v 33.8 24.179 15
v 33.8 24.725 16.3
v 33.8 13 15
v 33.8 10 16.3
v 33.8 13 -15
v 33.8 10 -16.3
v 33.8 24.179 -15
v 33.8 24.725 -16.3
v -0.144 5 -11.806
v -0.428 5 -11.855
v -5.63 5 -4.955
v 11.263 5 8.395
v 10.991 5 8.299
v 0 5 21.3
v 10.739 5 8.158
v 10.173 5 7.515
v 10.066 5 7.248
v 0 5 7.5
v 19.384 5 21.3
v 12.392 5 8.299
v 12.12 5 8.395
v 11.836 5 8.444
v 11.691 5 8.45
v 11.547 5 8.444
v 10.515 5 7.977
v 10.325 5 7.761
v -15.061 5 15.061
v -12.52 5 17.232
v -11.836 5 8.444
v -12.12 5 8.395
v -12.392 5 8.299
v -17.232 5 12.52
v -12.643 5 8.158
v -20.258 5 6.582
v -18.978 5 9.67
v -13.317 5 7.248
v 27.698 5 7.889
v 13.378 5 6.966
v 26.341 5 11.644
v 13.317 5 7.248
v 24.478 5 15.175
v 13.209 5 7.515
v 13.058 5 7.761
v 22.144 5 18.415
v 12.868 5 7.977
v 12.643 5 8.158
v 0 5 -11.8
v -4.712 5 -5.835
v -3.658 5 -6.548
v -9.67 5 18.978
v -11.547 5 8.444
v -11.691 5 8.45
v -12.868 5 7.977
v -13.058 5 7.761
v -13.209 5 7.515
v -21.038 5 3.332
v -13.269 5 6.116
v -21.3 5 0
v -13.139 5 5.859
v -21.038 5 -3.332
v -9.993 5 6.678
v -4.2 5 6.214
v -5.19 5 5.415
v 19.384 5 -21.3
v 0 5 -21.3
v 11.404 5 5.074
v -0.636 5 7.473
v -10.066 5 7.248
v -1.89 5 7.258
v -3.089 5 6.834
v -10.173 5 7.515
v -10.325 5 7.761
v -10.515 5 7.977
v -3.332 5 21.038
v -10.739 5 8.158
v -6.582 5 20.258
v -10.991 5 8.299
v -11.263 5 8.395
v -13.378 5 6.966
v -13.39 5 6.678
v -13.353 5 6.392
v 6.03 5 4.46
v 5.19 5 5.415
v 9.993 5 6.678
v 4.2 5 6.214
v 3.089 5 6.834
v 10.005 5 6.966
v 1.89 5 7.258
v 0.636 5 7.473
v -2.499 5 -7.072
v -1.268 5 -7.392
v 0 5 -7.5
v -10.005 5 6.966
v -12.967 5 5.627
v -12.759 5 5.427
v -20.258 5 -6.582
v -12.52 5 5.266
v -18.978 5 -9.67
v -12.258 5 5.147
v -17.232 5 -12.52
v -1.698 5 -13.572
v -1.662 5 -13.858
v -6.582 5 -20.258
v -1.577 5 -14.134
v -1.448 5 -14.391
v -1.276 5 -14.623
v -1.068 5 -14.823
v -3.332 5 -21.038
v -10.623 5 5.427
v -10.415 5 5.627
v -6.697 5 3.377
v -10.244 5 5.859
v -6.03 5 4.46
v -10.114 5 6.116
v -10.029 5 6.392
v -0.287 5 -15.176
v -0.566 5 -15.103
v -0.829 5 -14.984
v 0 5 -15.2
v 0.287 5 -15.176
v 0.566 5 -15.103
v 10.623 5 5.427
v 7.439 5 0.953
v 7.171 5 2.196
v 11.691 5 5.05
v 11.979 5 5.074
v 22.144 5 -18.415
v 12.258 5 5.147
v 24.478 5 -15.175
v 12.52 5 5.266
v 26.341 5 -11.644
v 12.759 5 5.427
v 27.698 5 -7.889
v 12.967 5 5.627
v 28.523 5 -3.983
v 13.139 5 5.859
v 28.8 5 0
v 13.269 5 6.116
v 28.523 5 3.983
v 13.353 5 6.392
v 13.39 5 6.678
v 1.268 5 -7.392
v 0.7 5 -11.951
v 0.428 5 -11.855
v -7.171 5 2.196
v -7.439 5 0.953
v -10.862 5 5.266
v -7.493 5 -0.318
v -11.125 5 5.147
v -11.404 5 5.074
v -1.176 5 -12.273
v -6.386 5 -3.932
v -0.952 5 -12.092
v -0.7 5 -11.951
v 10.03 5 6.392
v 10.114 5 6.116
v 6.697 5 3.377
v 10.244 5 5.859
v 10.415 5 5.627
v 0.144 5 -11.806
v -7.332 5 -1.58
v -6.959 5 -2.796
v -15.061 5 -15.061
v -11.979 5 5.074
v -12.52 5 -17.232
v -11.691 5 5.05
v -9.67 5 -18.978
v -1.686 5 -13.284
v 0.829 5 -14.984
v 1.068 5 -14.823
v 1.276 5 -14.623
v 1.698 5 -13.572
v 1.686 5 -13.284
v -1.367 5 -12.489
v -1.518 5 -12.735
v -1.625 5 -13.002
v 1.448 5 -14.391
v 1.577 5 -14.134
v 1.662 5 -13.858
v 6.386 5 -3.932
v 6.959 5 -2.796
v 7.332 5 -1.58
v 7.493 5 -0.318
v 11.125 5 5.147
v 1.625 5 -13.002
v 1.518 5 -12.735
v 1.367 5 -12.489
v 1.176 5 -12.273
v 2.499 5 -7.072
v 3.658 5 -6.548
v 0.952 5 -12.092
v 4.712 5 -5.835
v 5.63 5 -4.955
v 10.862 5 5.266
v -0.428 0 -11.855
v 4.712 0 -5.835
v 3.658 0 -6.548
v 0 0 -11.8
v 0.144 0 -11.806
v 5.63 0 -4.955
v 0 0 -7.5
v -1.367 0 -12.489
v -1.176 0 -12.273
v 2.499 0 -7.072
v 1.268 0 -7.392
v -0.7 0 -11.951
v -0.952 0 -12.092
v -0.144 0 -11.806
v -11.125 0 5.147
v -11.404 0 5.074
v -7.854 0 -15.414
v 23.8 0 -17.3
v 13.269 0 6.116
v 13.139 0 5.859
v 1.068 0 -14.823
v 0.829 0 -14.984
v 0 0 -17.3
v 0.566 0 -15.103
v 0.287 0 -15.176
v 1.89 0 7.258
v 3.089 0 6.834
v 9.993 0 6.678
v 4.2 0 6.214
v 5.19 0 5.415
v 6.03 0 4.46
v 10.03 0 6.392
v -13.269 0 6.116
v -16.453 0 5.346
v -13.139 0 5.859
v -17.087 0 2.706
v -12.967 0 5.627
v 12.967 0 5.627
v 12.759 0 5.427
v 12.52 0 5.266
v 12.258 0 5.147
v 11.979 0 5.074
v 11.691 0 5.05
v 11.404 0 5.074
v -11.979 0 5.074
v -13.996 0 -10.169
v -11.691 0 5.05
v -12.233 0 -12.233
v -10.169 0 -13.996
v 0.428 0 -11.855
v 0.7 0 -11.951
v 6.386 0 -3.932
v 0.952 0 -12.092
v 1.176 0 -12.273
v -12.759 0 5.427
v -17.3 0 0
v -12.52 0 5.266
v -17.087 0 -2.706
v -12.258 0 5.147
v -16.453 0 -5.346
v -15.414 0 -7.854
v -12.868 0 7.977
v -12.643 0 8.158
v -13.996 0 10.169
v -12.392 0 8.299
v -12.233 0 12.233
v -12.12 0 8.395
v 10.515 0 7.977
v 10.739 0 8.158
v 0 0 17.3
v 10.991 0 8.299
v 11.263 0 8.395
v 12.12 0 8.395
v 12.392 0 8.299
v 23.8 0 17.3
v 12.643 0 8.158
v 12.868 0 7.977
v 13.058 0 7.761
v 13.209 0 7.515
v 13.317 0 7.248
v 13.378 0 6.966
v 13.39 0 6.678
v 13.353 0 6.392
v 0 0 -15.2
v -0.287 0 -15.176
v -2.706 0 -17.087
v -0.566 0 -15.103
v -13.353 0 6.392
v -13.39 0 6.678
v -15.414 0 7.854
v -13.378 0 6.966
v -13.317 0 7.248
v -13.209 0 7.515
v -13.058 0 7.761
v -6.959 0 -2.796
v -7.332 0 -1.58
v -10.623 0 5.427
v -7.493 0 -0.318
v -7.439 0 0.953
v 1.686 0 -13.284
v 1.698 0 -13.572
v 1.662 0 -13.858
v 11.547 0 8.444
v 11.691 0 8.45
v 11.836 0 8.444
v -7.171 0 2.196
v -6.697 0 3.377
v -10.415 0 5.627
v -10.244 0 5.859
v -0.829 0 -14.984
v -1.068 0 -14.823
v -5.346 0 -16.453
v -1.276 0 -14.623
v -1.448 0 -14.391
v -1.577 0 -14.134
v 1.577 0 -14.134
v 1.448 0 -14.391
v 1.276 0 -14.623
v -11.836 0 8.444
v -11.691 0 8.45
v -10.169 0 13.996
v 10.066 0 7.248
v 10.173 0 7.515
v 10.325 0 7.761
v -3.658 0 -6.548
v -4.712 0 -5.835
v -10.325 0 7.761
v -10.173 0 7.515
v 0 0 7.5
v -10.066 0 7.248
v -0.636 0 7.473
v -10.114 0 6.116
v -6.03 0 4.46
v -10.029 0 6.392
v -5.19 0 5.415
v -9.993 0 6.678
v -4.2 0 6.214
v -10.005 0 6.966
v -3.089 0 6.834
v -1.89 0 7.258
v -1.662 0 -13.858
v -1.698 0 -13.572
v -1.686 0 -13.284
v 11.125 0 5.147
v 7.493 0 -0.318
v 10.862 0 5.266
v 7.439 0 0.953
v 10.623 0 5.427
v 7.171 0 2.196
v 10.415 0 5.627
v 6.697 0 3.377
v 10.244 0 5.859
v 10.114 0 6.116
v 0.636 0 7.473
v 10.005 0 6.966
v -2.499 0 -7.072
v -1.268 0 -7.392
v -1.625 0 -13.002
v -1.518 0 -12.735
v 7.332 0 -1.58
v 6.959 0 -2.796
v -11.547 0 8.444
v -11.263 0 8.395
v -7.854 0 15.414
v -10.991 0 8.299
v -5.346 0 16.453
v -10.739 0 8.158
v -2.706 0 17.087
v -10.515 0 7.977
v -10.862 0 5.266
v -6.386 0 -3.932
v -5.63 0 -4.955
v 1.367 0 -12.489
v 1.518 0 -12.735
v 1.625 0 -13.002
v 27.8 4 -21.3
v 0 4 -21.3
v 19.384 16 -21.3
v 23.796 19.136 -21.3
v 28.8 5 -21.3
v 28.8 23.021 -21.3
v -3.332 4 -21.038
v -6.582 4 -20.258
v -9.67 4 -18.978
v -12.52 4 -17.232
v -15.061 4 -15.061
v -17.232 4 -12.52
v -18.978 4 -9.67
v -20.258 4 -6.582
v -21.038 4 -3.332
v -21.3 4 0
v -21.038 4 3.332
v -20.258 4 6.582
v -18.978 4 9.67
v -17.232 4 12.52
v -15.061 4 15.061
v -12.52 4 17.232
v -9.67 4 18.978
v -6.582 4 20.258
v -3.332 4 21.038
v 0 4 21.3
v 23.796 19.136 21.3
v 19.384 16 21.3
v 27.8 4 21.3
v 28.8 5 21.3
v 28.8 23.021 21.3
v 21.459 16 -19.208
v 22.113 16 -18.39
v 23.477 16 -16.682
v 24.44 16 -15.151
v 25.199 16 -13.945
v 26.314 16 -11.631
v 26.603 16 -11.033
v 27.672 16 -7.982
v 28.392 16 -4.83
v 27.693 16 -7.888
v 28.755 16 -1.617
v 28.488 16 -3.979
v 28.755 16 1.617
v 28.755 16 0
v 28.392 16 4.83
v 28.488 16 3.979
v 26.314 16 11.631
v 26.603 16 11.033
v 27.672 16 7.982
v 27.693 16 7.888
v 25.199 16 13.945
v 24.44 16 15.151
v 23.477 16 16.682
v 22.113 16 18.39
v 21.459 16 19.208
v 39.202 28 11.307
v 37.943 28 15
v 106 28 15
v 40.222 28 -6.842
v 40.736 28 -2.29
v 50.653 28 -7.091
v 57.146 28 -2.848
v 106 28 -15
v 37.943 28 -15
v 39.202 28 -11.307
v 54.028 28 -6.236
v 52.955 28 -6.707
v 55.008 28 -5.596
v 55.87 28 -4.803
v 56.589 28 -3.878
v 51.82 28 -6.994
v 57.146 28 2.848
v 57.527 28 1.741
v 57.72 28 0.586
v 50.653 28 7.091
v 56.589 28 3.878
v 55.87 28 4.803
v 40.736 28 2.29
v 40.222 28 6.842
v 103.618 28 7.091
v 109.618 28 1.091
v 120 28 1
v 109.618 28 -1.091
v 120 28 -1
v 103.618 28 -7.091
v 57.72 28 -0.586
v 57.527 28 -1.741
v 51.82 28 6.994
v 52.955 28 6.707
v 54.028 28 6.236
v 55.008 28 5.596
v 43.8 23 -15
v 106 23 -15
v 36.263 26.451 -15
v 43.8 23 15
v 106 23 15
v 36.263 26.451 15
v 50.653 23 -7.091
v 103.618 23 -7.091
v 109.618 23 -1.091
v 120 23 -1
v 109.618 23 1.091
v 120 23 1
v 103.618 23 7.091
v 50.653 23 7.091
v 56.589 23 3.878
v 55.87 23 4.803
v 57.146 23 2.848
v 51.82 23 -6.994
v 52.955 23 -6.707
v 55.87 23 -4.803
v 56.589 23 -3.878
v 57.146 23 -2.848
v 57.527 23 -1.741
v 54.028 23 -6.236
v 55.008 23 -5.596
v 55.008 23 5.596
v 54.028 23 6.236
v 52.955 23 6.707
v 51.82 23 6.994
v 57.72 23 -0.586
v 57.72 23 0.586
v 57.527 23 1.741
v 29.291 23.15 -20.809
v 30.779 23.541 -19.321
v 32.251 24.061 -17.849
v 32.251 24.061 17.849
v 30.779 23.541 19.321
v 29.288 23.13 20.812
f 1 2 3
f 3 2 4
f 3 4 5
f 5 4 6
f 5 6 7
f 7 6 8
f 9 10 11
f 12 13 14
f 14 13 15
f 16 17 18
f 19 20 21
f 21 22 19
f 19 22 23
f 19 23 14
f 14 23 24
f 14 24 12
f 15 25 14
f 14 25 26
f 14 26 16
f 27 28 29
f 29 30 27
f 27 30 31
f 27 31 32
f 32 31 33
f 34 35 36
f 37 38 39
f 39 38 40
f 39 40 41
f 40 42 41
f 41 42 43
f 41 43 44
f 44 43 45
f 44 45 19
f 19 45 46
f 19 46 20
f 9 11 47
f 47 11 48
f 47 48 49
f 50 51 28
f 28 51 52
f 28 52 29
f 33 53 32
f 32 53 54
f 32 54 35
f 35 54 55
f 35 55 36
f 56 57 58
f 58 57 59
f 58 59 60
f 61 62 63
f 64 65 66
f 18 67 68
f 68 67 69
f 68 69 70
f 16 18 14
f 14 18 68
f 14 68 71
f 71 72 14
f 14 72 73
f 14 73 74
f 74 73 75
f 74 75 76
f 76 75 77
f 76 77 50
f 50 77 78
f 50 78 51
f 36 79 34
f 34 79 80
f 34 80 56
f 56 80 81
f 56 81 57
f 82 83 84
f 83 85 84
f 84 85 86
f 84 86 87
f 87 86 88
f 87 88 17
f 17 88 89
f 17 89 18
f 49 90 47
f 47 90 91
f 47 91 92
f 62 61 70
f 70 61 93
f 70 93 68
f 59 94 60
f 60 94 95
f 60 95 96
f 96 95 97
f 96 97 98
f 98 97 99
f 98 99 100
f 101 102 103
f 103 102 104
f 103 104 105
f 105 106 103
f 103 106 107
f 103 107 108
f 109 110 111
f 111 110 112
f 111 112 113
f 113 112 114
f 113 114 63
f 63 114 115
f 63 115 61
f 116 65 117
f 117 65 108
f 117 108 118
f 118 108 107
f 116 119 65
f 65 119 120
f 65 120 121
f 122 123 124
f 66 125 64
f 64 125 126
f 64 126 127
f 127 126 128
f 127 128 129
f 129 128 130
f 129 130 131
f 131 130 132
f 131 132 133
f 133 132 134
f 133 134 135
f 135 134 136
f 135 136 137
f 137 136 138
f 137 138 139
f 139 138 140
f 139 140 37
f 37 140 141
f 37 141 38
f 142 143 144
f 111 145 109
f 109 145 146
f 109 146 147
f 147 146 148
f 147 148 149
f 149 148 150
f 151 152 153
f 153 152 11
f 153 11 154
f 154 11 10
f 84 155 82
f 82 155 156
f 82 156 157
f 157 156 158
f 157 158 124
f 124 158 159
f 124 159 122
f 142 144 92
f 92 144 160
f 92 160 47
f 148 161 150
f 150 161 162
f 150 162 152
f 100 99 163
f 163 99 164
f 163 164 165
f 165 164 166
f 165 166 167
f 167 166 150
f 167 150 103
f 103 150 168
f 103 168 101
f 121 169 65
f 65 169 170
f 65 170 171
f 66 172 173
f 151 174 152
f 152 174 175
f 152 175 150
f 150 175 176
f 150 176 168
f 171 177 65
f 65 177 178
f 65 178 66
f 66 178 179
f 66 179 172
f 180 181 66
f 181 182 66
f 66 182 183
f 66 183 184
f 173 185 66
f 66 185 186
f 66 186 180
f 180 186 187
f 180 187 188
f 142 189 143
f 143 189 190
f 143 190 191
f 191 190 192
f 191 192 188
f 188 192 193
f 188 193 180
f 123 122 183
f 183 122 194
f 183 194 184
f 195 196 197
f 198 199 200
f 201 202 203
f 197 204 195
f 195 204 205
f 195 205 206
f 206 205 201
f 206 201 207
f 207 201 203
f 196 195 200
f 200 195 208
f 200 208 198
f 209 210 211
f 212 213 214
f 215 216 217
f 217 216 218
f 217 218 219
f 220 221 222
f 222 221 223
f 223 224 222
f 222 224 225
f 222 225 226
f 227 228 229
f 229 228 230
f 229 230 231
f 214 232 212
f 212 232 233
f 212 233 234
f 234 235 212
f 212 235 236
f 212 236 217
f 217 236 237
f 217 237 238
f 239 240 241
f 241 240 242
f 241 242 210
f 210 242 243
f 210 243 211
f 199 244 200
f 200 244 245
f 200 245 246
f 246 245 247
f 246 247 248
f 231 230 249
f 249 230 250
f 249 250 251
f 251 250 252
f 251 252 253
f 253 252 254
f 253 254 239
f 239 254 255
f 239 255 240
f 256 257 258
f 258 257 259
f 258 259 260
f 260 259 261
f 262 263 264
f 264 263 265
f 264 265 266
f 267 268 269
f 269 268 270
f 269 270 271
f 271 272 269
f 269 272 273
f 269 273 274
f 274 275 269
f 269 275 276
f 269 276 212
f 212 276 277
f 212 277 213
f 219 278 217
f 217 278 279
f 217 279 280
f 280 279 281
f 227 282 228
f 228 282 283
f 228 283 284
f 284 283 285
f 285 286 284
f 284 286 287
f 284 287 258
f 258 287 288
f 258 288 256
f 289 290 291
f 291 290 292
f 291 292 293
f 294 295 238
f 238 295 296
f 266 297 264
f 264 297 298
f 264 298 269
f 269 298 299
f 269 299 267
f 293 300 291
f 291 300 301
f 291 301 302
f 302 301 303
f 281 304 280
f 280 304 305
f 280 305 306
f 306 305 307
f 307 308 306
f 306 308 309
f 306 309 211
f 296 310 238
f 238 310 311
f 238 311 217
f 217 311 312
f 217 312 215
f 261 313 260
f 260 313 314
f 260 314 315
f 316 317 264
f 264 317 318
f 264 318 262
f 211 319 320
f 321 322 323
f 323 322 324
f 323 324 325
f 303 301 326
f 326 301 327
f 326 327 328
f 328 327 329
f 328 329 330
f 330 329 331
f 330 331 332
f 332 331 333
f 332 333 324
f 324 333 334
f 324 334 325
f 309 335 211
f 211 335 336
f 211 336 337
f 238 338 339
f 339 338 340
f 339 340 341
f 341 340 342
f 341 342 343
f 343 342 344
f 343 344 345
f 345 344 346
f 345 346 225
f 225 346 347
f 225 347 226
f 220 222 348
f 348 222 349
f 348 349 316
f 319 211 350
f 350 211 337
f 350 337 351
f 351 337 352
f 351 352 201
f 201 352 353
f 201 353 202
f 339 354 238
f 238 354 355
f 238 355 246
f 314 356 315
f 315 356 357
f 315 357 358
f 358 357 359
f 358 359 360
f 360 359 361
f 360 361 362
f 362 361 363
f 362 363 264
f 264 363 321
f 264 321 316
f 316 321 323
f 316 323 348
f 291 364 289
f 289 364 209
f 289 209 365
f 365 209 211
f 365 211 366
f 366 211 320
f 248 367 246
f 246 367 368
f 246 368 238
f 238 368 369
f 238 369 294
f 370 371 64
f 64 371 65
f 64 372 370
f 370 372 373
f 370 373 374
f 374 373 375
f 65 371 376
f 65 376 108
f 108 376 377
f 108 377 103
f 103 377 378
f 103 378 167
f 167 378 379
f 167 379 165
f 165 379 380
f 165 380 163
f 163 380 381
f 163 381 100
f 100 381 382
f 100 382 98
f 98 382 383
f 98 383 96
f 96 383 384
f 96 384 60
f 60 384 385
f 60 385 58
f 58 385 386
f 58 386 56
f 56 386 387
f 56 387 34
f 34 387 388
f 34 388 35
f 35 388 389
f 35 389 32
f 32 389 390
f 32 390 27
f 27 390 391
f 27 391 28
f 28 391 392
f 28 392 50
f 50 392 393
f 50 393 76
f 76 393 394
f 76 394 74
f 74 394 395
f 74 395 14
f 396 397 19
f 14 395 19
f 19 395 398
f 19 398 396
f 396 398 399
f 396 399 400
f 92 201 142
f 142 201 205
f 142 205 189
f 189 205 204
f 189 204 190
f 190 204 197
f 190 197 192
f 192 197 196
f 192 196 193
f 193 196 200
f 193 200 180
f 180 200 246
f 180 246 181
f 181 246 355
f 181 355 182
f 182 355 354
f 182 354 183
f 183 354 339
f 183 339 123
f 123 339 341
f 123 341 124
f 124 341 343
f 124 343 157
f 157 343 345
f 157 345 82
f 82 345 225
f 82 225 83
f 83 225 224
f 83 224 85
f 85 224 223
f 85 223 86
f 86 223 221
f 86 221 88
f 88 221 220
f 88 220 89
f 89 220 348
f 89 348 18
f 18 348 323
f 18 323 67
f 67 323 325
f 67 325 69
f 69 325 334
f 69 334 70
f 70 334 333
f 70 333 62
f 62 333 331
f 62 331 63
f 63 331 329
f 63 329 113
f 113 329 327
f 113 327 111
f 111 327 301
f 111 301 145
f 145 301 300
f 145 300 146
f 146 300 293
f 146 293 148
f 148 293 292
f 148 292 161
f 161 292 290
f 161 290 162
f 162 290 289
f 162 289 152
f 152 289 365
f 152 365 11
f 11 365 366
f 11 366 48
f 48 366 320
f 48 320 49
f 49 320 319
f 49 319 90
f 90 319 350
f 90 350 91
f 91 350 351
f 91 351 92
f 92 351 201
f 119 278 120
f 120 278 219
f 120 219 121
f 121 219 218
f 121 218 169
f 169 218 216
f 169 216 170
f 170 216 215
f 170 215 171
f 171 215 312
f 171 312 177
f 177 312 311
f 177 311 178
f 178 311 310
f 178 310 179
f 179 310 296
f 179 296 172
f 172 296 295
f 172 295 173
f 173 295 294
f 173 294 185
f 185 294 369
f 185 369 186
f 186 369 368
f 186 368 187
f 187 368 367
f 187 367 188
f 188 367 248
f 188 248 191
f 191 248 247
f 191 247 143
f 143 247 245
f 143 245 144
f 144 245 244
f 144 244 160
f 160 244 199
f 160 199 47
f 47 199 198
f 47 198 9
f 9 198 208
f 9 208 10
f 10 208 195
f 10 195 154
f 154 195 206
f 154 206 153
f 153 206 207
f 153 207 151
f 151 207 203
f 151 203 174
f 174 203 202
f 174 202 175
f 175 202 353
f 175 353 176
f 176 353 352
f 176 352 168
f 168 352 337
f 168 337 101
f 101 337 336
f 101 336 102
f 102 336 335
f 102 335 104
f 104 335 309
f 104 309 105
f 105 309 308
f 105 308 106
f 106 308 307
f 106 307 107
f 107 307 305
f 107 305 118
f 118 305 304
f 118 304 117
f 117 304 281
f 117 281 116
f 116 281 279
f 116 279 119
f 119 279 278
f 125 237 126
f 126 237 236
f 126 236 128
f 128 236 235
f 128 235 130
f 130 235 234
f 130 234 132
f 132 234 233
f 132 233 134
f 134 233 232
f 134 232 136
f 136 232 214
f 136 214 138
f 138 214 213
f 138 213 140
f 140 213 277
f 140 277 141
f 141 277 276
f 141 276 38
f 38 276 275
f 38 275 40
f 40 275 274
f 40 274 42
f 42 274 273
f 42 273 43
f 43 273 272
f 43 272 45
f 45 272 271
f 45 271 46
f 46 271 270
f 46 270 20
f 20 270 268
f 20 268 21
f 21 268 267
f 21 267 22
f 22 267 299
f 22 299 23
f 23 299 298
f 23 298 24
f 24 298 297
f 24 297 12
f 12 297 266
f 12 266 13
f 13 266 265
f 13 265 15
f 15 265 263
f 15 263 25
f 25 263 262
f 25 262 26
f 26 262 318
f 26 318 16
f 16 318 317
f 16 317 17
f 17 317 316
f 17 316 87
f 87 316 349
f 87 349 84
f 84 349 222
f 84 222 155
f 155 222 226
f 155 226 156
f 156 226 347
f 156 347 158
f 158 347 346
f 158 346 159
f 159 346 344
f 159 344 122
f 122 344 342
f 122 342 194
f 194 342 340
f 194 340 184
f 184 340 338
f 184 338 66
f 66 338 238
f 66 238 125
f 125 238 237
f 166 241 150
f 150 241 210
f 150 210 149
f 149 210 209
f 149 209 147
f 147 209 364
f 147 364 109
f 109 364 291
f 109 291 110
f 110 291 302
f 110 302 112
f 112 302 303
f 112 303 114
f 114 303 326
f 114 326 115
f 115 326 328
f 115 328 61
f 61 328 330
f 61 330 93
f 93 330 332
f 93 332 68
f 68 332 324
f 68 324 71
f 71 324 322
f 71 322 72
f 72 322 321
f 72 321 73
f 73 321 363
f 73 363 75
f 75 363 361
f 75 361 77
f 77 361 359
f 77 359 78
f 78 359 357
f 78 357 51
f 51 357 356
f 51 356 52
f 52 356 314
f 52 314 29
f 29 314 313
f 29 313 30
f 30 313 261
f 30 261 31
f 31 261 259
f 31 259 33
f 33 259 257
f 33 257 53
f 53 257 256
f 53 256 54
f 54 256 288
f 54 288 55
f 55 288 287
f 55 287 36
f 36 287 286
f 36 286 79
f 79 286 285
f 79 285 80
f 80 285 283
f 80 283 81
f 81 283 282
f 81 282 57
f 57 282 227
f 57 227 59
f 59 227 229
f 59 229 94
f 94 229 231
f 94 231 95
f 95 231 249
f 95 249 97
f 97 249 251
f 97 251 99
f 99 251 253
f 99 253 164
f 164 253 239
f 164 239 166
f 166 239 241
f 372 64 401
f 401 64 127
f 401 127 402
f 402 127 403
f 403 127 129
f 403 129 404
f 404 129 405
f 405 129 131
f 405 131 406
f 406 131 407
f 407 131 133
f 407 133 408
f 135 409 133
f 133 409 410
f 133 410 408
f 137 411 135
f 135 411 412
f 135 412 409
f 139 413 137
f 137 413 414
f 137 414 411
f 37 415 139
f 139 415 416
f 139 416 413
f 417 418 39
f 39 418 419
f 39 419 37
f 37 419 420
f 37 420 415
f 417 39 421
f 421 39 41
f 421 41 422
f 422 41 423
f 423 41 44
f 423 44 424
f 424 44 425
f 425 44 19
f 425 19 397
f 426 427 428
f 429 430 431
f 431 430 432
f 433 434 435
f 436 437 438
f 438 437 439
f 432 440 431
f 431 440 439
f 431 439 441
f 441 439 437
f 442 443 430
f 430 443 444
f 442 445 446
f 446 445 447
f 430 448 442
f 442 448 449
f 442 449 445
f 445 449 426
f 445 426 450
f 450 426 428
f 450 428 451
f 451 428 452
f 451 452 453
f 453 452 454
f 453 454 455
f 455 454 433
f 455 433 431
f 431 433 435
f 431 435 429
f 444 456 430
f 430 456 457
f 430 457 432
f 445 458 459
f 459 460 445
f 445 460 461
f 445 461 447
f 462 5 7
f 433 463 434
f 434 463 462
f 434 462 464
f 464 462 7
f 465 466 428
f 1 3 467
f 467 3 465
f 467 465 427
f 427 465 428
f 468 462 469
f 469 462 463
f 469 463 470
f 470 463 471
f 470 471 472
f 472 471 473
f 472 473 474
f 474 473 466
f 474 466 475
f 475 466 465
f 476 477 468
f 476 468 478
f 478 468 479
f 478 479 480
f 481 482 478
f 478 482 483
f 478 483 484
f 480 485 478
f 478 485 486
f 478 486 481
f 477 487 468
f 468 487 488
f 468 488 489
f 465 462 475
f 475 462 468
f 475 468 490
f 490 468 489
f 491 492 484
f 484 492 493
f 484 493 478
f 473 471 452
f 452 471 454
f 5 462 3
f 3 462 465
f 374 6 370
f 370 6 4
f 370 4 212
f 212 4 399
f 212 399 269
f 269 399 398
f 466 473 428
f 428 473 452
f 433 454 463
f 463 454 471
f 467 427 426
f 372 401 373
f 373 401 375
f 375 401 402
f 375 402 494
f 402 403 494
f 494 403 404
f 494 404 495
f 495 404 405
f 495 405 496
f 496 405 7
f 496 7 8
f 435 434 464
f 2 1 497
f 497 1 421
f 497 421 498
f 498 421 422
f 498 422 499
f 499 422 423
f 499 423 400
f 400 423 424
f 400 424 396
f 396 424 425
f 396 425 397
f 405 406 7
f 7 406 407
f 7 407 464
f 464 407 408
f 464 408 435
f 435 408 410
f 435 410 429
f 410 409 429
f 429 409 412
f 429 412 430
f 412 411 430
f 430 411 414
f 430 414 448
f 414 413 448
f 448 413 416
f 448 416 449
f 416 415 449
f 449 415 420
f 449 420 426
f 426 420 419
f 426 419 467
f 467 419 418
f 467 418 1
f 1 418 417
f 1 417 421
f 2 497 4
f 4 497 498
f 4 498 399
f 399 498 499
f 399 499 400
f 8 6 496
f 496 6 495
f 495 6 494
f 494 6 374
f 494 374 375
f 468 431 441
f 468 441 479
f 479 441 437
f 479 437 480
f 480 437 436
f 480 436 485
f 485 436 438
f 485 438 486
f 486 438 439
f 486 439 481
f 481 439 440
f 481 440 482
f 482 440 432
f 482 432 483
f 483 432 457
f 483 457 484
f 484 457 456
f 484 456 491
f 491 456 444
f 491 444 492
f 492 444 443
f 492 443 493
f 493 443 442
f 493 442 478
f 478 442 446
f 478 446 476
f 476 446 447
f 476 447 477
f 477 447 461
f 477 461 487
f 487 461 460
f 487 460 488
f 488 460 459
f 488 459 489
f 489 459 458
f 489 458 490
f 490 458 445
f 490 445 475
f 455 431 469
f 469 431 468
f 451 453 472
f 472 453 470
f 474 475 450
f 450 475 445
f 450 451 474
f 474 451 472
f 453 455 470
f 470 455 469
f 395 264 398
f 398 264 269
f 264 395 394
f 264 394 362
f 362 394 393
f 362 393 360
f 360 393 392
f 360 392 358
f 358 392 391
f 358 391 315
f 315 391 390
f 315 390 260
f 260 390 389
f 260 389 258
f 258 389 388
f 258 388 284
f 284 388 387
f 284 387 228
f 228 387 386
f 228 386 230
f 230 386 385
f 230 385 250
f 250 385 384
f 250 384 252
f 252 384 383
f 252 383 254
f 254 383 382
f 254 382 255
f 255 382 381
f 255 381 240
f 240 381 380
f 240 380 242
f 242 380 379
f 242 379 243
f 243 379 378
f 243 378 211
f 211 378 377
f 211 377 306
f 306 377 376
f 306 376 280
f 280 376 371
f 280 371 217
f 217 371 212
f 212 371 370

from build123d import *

# Parameters (mm, degrees)
SKETCH_1_R          = 1.7
SKETCH_1_R_2        = 7.5
EXTRUDE_1_DEPTH     = 5
EXTRUDE_2_DEPTH     = 23
SKETCH_4_W          = 30
SKETCH_4_H          = 5
EXTRUDE_3_DEPTH     = 86.2
CHAMFER_1_SIZE      = 10
CHAMFER_2_SIZE      = 10
CHAMFER_3_SIZE      = 14
CHAMFER_5_SIZE      = 12
CHAMFER_6_SIZE      = 5
CUT_EXTRUDE_2_DEPTH = 14
CHAMFER_7_SIZE      = 6
CHAMFER_8_SIZE      = 4


with BuildPart() as part:
    # 草图1 → 凸台-拉伸1 (new body)
    with BuildSketch(Plane(origin=(0, 0, 0), x_dir=(1, 0, 0), z_dir=(0, 1, 0))):
        with BuildLine():
            Line((33.8, 21.3), (33.8, -21.3))
            Line((33.8, -21.3), (28.8, -21.3))
            Line((28.8, -21.3), (0, -21.3))
            ThreePointArc((0, -21.3), (-21.3, 0), (0, 21.3))
            Line((0, 21.3), (28.8, 21.3))
            Line((28.8, 21.3), (33.8, 21.3))
        make_face()
        with Locations(Location((0, 13.5, 0), (0, 0, 270))):
            Circle(SKETCH_1_R, mode=Mode.SUBTRACT)
        with Locations(Location((11.691342951, -6.75, 0), (0, 0, 270))):
            Circle(SKETCH_1_R, mode=Mode.SUBTRACT)
        with Locations(Location((-11.691342951, -6.75, 0), (0, 0, 270))):
            Circle(SKETCH_1_R, mode=Mode.SUBTRACT)
        with Locations(Location((0, 0, 0), (0, 0, 270))):
            Circle(SKETCH_1_R_2, mode=Mode.SUBTRACT)
    extrude(amount=EXTRUDE_1_DEPTH)

    # 草图3 → 凸台-拉伸2 (add)
    with BuildSketch(Plane(origin=(0, 5, 0), x_dir=(1, 0, 0), z_dir=(0, 1, 0))):
        with BuildLine():
            Line((33.8, 21.3), (19.384271975, 21.3))
            ThreePointArc((19.384271975, 21.3), (28.8, 0), (19.384271975, -21.3))
            Line((19.384271975, -21.3), (33.8, -21.3))
            Line((33.8, -21.3), (33.8, 21.3))
        make_face()
    extrude(amount=EXTRUDE_2_DEPTH)

    # 草图4 → 凸台-拉伸3 (add)
    with BuildSketch(Plane(origin=(33.8, 0, 0), x_dir=(0, 0, -1), z_dir=(1, 0, 0))):
        with Locations((0, 25.5)):
            Rectangle(SKETCH_4_W, SKETCH_4_H)
    extrude(amount=EXTRUDE_3_DEPTH)

    # 倒角1
    chamfer_1_edges = [part.edges().sort_by_distance(p)[0] for p in [
        (33.8, 23, 0),
    ]]
    chamfer(chamfer_1_edges, length=CHAMFER_1_SIZE)

    # 倒角2
    chamfer_2_edges = [part.edges().sort_by_distance(p)[0] for p in [
        (33.8, 0, 0),
    ]]
    chamfer(chamfer_2_edges, length=CHAMFER_2_SIZE)

    # 倒角3
    chamfer_3_edges = [part.edges().sort_by_distance(p)[0] for p in [
        (120, 25.5, -15),
        (120, 25.5, 15),
    ]]
    chamfer(chamfer_3_edges, length=CHAMFER_3_SIZE)

    # 倒角5
    chamfer_5_edges = [part.edges().sort_by_distance(p)[0] for p in [
        (28.8, 28, 0),
    ]]
    chamfer(chamfer_5_edges, length=CHAMFER_5_SIZE)

    # 倒角6
    chamfer_6_edges = [part.edges().sort_by_distance(p)[0] for p in [
        (33.8, 18.575797856, 21.3),
        (33.8, 18.575797856, -21.3),
    ]]
    chamfer(chamfer_6_edges, length=CHAMFER_6_SIZE)

    # 草图6 → 切除-拉伸2 (cut)
    with BuildSketch(Plane(origin=(0, 28, 0), x_dir=(1, 0, 0), z_dir=(0, 1, 0))):
        with BuildLine():
            Line((50.652646896, 7.091102625), (109.617699283, 7.091102625))
            Line((109.617699283, 7.091102625), (109.617699283, -7.091102625))
            Line((109.617699283, -7.091102625), (50.652646896, -7.091102625))
            ThreePointArc((50.652646896, -7.091102625), (57.743749521, 0), (50.652646896, 7.091102625))
        make_face()
    extrude(amount=-CUT_EXTRUDE_2_DEPTH, mode=Mode.SUBTRACT)

    # 倒角7
    chamfer_7_edges = [part.edges().sort_by_distance(p)[0] for p in [
        (109.617699283, 25.5, -7.091102625),
        (109.617699283, 25.5, 7.091102625),
    ]]
    chamfer(chamfer_7_edges, length=CHAMFER_7_SIZE)

    # 倒角8
    chamfer_8_edges = [part.edges().sort_by_distance(p)[0] for p in [
        (11.9, 0, 21.3),
        (-21.3, 0, 0),
        (11.9, 0, -21.3),
    ]]
    chamfer(chamfer_8_edges, length=CHAMFER_8_SIZE)


solid = part.part
